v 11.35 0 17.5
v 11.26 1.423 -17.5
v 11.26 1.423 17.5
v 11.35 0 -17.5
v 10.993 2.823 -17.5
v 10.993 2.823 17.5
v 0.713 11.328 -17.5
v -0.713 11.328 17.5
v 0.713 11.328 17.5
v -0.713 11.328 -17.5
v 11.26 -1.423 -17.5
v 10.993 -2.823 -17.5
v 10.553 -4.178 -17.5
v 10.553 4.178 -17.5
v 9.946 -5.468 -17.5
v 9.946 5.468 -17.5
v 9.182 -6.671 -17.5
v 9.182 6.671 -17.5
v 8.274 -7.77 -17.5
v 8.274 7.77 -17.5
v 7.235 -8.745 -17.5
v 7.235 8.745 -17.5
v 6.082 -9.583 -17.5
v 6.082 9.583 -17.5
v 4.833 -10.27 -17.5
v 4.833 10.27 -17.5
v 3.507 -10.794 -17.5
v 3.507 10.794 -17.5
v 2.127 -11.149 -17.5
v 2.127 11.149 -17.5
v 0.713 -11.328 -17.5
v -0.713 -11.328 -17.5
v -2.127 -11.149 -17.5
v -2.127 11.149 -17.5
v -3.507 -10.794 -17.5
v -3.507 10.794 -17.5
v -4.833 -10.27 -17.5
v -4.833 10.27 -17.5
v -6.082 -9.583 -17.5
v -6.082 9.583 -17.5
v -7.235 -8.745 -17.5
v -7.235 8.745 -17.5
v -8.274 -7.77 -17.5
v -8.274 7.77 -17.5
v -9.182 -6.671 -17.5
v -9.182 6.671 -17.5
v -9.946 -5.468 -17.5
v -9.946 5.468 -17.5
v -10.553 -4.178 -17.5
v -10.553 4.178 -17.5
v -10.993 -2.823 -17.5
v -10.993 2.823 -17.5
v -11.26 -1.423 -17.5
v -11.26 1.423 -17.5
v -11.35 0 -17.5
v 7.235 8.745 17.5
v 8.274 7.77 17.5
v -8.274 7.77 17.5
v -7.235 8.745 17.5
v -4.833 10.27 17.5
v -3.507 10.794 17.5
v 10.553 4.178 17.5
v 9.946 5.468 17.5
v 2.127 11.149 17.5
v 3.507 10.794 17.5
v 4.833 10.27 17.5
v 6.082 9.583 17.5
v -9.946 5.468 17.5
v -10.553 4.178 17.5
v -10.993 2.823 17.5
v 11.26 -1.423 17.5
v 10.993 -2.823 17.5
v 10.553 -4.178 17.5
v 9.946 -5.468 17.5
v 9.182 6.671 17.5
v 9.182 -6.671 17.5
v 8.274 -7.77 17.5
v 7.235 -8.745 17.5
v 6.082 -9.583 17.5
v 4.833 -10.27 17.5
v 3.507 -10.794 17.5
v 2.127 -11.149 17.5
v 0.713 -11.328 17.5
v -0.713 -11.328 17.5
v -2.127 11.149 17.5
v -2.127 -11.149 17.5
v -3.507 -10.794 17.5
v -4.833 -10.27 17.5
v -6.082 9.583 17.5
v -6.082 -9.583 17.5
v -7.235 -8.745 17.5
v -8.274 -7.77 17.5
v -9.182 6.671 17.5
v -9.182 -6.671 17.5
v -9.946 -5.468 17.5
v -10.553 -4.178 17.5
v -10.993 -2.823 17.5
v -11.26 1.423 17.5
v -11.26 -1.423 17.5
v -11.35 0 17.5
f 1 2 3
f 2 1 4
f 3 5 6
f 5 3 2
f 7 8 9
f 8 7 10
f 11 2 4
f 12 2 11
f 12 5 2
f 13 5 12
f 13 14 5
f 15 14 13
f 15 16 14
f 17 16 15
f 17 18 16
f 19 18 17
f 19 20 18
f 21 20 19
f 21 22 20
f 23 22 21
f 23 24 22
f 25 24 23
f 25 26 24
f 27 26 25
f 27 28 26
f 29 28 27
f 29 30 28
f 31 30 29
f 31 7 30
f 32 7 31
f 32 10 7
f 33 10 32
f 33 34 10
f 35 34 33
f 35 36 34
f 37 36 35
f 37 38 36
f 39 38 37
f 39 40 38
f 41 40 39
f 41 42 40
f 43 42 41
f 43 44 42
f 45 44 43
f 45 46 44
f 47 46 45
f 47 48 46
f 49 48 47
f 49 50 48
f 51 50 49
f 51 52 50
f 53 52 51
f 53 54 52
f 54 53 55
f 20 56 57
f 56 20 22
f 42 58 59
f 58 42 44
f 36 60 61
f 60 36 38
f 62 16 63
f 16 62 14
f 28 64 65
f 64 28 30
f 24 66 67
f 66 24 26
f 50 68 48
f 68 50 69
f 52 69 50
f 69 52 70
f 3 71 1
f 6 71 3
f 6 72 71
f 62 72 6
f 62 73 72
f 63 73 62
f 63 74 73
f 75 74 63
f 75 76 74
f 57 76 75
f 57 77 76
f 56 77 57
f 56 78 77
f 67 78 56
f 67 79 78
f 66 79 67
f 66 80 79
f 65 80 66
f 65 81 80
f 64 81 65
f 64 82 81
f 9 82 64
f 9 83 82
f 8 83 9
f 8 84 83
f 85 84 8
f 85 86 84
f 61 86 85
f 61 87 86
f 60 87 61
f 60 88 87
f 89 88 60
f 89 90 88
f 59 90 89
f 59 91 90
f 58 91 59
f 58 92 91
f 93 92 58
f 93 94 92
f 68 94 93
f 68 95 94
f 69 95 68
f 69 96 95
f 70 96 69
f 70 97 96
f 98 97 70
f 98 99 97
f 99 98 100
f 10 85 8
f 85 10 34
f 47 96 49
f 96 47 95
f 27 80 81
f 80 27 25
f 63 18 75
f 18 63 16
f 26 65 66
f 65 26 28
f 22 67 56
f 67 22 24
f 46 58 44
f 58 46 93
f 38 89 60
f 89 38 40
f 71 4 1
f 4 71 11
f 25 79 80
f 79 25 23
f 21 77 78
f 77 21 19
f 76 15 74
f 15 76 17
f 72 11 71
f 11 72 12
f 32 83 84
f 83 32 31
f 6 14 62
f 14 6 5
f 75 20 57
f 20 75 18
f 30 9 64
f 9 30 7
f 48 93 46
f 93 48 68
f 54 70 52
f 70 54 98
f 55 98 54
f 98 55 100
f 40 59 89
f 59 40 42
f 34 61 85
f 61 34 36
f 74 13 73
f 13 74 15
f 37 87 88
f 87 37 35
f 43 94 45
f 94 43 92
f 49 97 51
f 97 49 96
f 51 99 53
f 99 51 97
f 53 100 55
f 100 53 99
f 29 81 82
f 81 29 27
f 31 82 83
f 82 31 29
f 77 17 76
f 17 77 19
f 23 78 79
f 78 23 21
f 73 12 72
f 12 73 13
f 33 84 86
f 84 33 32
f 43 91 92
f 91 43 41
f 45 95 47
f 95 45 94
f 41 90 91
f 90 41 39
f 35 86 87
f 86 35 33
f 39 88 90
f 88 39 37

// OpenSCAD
$fn = 50;


difference() {
	union() {
		translate(v = [0, 0, -17.5000000000]) {
			cylinder(h = 35, r = 11.3500000000);
		}
	}
	union() {
		translate(v = [0, 0, -100.0000000000]) {
			cylinder(h = 200, r = 0);
		}
	}
}
